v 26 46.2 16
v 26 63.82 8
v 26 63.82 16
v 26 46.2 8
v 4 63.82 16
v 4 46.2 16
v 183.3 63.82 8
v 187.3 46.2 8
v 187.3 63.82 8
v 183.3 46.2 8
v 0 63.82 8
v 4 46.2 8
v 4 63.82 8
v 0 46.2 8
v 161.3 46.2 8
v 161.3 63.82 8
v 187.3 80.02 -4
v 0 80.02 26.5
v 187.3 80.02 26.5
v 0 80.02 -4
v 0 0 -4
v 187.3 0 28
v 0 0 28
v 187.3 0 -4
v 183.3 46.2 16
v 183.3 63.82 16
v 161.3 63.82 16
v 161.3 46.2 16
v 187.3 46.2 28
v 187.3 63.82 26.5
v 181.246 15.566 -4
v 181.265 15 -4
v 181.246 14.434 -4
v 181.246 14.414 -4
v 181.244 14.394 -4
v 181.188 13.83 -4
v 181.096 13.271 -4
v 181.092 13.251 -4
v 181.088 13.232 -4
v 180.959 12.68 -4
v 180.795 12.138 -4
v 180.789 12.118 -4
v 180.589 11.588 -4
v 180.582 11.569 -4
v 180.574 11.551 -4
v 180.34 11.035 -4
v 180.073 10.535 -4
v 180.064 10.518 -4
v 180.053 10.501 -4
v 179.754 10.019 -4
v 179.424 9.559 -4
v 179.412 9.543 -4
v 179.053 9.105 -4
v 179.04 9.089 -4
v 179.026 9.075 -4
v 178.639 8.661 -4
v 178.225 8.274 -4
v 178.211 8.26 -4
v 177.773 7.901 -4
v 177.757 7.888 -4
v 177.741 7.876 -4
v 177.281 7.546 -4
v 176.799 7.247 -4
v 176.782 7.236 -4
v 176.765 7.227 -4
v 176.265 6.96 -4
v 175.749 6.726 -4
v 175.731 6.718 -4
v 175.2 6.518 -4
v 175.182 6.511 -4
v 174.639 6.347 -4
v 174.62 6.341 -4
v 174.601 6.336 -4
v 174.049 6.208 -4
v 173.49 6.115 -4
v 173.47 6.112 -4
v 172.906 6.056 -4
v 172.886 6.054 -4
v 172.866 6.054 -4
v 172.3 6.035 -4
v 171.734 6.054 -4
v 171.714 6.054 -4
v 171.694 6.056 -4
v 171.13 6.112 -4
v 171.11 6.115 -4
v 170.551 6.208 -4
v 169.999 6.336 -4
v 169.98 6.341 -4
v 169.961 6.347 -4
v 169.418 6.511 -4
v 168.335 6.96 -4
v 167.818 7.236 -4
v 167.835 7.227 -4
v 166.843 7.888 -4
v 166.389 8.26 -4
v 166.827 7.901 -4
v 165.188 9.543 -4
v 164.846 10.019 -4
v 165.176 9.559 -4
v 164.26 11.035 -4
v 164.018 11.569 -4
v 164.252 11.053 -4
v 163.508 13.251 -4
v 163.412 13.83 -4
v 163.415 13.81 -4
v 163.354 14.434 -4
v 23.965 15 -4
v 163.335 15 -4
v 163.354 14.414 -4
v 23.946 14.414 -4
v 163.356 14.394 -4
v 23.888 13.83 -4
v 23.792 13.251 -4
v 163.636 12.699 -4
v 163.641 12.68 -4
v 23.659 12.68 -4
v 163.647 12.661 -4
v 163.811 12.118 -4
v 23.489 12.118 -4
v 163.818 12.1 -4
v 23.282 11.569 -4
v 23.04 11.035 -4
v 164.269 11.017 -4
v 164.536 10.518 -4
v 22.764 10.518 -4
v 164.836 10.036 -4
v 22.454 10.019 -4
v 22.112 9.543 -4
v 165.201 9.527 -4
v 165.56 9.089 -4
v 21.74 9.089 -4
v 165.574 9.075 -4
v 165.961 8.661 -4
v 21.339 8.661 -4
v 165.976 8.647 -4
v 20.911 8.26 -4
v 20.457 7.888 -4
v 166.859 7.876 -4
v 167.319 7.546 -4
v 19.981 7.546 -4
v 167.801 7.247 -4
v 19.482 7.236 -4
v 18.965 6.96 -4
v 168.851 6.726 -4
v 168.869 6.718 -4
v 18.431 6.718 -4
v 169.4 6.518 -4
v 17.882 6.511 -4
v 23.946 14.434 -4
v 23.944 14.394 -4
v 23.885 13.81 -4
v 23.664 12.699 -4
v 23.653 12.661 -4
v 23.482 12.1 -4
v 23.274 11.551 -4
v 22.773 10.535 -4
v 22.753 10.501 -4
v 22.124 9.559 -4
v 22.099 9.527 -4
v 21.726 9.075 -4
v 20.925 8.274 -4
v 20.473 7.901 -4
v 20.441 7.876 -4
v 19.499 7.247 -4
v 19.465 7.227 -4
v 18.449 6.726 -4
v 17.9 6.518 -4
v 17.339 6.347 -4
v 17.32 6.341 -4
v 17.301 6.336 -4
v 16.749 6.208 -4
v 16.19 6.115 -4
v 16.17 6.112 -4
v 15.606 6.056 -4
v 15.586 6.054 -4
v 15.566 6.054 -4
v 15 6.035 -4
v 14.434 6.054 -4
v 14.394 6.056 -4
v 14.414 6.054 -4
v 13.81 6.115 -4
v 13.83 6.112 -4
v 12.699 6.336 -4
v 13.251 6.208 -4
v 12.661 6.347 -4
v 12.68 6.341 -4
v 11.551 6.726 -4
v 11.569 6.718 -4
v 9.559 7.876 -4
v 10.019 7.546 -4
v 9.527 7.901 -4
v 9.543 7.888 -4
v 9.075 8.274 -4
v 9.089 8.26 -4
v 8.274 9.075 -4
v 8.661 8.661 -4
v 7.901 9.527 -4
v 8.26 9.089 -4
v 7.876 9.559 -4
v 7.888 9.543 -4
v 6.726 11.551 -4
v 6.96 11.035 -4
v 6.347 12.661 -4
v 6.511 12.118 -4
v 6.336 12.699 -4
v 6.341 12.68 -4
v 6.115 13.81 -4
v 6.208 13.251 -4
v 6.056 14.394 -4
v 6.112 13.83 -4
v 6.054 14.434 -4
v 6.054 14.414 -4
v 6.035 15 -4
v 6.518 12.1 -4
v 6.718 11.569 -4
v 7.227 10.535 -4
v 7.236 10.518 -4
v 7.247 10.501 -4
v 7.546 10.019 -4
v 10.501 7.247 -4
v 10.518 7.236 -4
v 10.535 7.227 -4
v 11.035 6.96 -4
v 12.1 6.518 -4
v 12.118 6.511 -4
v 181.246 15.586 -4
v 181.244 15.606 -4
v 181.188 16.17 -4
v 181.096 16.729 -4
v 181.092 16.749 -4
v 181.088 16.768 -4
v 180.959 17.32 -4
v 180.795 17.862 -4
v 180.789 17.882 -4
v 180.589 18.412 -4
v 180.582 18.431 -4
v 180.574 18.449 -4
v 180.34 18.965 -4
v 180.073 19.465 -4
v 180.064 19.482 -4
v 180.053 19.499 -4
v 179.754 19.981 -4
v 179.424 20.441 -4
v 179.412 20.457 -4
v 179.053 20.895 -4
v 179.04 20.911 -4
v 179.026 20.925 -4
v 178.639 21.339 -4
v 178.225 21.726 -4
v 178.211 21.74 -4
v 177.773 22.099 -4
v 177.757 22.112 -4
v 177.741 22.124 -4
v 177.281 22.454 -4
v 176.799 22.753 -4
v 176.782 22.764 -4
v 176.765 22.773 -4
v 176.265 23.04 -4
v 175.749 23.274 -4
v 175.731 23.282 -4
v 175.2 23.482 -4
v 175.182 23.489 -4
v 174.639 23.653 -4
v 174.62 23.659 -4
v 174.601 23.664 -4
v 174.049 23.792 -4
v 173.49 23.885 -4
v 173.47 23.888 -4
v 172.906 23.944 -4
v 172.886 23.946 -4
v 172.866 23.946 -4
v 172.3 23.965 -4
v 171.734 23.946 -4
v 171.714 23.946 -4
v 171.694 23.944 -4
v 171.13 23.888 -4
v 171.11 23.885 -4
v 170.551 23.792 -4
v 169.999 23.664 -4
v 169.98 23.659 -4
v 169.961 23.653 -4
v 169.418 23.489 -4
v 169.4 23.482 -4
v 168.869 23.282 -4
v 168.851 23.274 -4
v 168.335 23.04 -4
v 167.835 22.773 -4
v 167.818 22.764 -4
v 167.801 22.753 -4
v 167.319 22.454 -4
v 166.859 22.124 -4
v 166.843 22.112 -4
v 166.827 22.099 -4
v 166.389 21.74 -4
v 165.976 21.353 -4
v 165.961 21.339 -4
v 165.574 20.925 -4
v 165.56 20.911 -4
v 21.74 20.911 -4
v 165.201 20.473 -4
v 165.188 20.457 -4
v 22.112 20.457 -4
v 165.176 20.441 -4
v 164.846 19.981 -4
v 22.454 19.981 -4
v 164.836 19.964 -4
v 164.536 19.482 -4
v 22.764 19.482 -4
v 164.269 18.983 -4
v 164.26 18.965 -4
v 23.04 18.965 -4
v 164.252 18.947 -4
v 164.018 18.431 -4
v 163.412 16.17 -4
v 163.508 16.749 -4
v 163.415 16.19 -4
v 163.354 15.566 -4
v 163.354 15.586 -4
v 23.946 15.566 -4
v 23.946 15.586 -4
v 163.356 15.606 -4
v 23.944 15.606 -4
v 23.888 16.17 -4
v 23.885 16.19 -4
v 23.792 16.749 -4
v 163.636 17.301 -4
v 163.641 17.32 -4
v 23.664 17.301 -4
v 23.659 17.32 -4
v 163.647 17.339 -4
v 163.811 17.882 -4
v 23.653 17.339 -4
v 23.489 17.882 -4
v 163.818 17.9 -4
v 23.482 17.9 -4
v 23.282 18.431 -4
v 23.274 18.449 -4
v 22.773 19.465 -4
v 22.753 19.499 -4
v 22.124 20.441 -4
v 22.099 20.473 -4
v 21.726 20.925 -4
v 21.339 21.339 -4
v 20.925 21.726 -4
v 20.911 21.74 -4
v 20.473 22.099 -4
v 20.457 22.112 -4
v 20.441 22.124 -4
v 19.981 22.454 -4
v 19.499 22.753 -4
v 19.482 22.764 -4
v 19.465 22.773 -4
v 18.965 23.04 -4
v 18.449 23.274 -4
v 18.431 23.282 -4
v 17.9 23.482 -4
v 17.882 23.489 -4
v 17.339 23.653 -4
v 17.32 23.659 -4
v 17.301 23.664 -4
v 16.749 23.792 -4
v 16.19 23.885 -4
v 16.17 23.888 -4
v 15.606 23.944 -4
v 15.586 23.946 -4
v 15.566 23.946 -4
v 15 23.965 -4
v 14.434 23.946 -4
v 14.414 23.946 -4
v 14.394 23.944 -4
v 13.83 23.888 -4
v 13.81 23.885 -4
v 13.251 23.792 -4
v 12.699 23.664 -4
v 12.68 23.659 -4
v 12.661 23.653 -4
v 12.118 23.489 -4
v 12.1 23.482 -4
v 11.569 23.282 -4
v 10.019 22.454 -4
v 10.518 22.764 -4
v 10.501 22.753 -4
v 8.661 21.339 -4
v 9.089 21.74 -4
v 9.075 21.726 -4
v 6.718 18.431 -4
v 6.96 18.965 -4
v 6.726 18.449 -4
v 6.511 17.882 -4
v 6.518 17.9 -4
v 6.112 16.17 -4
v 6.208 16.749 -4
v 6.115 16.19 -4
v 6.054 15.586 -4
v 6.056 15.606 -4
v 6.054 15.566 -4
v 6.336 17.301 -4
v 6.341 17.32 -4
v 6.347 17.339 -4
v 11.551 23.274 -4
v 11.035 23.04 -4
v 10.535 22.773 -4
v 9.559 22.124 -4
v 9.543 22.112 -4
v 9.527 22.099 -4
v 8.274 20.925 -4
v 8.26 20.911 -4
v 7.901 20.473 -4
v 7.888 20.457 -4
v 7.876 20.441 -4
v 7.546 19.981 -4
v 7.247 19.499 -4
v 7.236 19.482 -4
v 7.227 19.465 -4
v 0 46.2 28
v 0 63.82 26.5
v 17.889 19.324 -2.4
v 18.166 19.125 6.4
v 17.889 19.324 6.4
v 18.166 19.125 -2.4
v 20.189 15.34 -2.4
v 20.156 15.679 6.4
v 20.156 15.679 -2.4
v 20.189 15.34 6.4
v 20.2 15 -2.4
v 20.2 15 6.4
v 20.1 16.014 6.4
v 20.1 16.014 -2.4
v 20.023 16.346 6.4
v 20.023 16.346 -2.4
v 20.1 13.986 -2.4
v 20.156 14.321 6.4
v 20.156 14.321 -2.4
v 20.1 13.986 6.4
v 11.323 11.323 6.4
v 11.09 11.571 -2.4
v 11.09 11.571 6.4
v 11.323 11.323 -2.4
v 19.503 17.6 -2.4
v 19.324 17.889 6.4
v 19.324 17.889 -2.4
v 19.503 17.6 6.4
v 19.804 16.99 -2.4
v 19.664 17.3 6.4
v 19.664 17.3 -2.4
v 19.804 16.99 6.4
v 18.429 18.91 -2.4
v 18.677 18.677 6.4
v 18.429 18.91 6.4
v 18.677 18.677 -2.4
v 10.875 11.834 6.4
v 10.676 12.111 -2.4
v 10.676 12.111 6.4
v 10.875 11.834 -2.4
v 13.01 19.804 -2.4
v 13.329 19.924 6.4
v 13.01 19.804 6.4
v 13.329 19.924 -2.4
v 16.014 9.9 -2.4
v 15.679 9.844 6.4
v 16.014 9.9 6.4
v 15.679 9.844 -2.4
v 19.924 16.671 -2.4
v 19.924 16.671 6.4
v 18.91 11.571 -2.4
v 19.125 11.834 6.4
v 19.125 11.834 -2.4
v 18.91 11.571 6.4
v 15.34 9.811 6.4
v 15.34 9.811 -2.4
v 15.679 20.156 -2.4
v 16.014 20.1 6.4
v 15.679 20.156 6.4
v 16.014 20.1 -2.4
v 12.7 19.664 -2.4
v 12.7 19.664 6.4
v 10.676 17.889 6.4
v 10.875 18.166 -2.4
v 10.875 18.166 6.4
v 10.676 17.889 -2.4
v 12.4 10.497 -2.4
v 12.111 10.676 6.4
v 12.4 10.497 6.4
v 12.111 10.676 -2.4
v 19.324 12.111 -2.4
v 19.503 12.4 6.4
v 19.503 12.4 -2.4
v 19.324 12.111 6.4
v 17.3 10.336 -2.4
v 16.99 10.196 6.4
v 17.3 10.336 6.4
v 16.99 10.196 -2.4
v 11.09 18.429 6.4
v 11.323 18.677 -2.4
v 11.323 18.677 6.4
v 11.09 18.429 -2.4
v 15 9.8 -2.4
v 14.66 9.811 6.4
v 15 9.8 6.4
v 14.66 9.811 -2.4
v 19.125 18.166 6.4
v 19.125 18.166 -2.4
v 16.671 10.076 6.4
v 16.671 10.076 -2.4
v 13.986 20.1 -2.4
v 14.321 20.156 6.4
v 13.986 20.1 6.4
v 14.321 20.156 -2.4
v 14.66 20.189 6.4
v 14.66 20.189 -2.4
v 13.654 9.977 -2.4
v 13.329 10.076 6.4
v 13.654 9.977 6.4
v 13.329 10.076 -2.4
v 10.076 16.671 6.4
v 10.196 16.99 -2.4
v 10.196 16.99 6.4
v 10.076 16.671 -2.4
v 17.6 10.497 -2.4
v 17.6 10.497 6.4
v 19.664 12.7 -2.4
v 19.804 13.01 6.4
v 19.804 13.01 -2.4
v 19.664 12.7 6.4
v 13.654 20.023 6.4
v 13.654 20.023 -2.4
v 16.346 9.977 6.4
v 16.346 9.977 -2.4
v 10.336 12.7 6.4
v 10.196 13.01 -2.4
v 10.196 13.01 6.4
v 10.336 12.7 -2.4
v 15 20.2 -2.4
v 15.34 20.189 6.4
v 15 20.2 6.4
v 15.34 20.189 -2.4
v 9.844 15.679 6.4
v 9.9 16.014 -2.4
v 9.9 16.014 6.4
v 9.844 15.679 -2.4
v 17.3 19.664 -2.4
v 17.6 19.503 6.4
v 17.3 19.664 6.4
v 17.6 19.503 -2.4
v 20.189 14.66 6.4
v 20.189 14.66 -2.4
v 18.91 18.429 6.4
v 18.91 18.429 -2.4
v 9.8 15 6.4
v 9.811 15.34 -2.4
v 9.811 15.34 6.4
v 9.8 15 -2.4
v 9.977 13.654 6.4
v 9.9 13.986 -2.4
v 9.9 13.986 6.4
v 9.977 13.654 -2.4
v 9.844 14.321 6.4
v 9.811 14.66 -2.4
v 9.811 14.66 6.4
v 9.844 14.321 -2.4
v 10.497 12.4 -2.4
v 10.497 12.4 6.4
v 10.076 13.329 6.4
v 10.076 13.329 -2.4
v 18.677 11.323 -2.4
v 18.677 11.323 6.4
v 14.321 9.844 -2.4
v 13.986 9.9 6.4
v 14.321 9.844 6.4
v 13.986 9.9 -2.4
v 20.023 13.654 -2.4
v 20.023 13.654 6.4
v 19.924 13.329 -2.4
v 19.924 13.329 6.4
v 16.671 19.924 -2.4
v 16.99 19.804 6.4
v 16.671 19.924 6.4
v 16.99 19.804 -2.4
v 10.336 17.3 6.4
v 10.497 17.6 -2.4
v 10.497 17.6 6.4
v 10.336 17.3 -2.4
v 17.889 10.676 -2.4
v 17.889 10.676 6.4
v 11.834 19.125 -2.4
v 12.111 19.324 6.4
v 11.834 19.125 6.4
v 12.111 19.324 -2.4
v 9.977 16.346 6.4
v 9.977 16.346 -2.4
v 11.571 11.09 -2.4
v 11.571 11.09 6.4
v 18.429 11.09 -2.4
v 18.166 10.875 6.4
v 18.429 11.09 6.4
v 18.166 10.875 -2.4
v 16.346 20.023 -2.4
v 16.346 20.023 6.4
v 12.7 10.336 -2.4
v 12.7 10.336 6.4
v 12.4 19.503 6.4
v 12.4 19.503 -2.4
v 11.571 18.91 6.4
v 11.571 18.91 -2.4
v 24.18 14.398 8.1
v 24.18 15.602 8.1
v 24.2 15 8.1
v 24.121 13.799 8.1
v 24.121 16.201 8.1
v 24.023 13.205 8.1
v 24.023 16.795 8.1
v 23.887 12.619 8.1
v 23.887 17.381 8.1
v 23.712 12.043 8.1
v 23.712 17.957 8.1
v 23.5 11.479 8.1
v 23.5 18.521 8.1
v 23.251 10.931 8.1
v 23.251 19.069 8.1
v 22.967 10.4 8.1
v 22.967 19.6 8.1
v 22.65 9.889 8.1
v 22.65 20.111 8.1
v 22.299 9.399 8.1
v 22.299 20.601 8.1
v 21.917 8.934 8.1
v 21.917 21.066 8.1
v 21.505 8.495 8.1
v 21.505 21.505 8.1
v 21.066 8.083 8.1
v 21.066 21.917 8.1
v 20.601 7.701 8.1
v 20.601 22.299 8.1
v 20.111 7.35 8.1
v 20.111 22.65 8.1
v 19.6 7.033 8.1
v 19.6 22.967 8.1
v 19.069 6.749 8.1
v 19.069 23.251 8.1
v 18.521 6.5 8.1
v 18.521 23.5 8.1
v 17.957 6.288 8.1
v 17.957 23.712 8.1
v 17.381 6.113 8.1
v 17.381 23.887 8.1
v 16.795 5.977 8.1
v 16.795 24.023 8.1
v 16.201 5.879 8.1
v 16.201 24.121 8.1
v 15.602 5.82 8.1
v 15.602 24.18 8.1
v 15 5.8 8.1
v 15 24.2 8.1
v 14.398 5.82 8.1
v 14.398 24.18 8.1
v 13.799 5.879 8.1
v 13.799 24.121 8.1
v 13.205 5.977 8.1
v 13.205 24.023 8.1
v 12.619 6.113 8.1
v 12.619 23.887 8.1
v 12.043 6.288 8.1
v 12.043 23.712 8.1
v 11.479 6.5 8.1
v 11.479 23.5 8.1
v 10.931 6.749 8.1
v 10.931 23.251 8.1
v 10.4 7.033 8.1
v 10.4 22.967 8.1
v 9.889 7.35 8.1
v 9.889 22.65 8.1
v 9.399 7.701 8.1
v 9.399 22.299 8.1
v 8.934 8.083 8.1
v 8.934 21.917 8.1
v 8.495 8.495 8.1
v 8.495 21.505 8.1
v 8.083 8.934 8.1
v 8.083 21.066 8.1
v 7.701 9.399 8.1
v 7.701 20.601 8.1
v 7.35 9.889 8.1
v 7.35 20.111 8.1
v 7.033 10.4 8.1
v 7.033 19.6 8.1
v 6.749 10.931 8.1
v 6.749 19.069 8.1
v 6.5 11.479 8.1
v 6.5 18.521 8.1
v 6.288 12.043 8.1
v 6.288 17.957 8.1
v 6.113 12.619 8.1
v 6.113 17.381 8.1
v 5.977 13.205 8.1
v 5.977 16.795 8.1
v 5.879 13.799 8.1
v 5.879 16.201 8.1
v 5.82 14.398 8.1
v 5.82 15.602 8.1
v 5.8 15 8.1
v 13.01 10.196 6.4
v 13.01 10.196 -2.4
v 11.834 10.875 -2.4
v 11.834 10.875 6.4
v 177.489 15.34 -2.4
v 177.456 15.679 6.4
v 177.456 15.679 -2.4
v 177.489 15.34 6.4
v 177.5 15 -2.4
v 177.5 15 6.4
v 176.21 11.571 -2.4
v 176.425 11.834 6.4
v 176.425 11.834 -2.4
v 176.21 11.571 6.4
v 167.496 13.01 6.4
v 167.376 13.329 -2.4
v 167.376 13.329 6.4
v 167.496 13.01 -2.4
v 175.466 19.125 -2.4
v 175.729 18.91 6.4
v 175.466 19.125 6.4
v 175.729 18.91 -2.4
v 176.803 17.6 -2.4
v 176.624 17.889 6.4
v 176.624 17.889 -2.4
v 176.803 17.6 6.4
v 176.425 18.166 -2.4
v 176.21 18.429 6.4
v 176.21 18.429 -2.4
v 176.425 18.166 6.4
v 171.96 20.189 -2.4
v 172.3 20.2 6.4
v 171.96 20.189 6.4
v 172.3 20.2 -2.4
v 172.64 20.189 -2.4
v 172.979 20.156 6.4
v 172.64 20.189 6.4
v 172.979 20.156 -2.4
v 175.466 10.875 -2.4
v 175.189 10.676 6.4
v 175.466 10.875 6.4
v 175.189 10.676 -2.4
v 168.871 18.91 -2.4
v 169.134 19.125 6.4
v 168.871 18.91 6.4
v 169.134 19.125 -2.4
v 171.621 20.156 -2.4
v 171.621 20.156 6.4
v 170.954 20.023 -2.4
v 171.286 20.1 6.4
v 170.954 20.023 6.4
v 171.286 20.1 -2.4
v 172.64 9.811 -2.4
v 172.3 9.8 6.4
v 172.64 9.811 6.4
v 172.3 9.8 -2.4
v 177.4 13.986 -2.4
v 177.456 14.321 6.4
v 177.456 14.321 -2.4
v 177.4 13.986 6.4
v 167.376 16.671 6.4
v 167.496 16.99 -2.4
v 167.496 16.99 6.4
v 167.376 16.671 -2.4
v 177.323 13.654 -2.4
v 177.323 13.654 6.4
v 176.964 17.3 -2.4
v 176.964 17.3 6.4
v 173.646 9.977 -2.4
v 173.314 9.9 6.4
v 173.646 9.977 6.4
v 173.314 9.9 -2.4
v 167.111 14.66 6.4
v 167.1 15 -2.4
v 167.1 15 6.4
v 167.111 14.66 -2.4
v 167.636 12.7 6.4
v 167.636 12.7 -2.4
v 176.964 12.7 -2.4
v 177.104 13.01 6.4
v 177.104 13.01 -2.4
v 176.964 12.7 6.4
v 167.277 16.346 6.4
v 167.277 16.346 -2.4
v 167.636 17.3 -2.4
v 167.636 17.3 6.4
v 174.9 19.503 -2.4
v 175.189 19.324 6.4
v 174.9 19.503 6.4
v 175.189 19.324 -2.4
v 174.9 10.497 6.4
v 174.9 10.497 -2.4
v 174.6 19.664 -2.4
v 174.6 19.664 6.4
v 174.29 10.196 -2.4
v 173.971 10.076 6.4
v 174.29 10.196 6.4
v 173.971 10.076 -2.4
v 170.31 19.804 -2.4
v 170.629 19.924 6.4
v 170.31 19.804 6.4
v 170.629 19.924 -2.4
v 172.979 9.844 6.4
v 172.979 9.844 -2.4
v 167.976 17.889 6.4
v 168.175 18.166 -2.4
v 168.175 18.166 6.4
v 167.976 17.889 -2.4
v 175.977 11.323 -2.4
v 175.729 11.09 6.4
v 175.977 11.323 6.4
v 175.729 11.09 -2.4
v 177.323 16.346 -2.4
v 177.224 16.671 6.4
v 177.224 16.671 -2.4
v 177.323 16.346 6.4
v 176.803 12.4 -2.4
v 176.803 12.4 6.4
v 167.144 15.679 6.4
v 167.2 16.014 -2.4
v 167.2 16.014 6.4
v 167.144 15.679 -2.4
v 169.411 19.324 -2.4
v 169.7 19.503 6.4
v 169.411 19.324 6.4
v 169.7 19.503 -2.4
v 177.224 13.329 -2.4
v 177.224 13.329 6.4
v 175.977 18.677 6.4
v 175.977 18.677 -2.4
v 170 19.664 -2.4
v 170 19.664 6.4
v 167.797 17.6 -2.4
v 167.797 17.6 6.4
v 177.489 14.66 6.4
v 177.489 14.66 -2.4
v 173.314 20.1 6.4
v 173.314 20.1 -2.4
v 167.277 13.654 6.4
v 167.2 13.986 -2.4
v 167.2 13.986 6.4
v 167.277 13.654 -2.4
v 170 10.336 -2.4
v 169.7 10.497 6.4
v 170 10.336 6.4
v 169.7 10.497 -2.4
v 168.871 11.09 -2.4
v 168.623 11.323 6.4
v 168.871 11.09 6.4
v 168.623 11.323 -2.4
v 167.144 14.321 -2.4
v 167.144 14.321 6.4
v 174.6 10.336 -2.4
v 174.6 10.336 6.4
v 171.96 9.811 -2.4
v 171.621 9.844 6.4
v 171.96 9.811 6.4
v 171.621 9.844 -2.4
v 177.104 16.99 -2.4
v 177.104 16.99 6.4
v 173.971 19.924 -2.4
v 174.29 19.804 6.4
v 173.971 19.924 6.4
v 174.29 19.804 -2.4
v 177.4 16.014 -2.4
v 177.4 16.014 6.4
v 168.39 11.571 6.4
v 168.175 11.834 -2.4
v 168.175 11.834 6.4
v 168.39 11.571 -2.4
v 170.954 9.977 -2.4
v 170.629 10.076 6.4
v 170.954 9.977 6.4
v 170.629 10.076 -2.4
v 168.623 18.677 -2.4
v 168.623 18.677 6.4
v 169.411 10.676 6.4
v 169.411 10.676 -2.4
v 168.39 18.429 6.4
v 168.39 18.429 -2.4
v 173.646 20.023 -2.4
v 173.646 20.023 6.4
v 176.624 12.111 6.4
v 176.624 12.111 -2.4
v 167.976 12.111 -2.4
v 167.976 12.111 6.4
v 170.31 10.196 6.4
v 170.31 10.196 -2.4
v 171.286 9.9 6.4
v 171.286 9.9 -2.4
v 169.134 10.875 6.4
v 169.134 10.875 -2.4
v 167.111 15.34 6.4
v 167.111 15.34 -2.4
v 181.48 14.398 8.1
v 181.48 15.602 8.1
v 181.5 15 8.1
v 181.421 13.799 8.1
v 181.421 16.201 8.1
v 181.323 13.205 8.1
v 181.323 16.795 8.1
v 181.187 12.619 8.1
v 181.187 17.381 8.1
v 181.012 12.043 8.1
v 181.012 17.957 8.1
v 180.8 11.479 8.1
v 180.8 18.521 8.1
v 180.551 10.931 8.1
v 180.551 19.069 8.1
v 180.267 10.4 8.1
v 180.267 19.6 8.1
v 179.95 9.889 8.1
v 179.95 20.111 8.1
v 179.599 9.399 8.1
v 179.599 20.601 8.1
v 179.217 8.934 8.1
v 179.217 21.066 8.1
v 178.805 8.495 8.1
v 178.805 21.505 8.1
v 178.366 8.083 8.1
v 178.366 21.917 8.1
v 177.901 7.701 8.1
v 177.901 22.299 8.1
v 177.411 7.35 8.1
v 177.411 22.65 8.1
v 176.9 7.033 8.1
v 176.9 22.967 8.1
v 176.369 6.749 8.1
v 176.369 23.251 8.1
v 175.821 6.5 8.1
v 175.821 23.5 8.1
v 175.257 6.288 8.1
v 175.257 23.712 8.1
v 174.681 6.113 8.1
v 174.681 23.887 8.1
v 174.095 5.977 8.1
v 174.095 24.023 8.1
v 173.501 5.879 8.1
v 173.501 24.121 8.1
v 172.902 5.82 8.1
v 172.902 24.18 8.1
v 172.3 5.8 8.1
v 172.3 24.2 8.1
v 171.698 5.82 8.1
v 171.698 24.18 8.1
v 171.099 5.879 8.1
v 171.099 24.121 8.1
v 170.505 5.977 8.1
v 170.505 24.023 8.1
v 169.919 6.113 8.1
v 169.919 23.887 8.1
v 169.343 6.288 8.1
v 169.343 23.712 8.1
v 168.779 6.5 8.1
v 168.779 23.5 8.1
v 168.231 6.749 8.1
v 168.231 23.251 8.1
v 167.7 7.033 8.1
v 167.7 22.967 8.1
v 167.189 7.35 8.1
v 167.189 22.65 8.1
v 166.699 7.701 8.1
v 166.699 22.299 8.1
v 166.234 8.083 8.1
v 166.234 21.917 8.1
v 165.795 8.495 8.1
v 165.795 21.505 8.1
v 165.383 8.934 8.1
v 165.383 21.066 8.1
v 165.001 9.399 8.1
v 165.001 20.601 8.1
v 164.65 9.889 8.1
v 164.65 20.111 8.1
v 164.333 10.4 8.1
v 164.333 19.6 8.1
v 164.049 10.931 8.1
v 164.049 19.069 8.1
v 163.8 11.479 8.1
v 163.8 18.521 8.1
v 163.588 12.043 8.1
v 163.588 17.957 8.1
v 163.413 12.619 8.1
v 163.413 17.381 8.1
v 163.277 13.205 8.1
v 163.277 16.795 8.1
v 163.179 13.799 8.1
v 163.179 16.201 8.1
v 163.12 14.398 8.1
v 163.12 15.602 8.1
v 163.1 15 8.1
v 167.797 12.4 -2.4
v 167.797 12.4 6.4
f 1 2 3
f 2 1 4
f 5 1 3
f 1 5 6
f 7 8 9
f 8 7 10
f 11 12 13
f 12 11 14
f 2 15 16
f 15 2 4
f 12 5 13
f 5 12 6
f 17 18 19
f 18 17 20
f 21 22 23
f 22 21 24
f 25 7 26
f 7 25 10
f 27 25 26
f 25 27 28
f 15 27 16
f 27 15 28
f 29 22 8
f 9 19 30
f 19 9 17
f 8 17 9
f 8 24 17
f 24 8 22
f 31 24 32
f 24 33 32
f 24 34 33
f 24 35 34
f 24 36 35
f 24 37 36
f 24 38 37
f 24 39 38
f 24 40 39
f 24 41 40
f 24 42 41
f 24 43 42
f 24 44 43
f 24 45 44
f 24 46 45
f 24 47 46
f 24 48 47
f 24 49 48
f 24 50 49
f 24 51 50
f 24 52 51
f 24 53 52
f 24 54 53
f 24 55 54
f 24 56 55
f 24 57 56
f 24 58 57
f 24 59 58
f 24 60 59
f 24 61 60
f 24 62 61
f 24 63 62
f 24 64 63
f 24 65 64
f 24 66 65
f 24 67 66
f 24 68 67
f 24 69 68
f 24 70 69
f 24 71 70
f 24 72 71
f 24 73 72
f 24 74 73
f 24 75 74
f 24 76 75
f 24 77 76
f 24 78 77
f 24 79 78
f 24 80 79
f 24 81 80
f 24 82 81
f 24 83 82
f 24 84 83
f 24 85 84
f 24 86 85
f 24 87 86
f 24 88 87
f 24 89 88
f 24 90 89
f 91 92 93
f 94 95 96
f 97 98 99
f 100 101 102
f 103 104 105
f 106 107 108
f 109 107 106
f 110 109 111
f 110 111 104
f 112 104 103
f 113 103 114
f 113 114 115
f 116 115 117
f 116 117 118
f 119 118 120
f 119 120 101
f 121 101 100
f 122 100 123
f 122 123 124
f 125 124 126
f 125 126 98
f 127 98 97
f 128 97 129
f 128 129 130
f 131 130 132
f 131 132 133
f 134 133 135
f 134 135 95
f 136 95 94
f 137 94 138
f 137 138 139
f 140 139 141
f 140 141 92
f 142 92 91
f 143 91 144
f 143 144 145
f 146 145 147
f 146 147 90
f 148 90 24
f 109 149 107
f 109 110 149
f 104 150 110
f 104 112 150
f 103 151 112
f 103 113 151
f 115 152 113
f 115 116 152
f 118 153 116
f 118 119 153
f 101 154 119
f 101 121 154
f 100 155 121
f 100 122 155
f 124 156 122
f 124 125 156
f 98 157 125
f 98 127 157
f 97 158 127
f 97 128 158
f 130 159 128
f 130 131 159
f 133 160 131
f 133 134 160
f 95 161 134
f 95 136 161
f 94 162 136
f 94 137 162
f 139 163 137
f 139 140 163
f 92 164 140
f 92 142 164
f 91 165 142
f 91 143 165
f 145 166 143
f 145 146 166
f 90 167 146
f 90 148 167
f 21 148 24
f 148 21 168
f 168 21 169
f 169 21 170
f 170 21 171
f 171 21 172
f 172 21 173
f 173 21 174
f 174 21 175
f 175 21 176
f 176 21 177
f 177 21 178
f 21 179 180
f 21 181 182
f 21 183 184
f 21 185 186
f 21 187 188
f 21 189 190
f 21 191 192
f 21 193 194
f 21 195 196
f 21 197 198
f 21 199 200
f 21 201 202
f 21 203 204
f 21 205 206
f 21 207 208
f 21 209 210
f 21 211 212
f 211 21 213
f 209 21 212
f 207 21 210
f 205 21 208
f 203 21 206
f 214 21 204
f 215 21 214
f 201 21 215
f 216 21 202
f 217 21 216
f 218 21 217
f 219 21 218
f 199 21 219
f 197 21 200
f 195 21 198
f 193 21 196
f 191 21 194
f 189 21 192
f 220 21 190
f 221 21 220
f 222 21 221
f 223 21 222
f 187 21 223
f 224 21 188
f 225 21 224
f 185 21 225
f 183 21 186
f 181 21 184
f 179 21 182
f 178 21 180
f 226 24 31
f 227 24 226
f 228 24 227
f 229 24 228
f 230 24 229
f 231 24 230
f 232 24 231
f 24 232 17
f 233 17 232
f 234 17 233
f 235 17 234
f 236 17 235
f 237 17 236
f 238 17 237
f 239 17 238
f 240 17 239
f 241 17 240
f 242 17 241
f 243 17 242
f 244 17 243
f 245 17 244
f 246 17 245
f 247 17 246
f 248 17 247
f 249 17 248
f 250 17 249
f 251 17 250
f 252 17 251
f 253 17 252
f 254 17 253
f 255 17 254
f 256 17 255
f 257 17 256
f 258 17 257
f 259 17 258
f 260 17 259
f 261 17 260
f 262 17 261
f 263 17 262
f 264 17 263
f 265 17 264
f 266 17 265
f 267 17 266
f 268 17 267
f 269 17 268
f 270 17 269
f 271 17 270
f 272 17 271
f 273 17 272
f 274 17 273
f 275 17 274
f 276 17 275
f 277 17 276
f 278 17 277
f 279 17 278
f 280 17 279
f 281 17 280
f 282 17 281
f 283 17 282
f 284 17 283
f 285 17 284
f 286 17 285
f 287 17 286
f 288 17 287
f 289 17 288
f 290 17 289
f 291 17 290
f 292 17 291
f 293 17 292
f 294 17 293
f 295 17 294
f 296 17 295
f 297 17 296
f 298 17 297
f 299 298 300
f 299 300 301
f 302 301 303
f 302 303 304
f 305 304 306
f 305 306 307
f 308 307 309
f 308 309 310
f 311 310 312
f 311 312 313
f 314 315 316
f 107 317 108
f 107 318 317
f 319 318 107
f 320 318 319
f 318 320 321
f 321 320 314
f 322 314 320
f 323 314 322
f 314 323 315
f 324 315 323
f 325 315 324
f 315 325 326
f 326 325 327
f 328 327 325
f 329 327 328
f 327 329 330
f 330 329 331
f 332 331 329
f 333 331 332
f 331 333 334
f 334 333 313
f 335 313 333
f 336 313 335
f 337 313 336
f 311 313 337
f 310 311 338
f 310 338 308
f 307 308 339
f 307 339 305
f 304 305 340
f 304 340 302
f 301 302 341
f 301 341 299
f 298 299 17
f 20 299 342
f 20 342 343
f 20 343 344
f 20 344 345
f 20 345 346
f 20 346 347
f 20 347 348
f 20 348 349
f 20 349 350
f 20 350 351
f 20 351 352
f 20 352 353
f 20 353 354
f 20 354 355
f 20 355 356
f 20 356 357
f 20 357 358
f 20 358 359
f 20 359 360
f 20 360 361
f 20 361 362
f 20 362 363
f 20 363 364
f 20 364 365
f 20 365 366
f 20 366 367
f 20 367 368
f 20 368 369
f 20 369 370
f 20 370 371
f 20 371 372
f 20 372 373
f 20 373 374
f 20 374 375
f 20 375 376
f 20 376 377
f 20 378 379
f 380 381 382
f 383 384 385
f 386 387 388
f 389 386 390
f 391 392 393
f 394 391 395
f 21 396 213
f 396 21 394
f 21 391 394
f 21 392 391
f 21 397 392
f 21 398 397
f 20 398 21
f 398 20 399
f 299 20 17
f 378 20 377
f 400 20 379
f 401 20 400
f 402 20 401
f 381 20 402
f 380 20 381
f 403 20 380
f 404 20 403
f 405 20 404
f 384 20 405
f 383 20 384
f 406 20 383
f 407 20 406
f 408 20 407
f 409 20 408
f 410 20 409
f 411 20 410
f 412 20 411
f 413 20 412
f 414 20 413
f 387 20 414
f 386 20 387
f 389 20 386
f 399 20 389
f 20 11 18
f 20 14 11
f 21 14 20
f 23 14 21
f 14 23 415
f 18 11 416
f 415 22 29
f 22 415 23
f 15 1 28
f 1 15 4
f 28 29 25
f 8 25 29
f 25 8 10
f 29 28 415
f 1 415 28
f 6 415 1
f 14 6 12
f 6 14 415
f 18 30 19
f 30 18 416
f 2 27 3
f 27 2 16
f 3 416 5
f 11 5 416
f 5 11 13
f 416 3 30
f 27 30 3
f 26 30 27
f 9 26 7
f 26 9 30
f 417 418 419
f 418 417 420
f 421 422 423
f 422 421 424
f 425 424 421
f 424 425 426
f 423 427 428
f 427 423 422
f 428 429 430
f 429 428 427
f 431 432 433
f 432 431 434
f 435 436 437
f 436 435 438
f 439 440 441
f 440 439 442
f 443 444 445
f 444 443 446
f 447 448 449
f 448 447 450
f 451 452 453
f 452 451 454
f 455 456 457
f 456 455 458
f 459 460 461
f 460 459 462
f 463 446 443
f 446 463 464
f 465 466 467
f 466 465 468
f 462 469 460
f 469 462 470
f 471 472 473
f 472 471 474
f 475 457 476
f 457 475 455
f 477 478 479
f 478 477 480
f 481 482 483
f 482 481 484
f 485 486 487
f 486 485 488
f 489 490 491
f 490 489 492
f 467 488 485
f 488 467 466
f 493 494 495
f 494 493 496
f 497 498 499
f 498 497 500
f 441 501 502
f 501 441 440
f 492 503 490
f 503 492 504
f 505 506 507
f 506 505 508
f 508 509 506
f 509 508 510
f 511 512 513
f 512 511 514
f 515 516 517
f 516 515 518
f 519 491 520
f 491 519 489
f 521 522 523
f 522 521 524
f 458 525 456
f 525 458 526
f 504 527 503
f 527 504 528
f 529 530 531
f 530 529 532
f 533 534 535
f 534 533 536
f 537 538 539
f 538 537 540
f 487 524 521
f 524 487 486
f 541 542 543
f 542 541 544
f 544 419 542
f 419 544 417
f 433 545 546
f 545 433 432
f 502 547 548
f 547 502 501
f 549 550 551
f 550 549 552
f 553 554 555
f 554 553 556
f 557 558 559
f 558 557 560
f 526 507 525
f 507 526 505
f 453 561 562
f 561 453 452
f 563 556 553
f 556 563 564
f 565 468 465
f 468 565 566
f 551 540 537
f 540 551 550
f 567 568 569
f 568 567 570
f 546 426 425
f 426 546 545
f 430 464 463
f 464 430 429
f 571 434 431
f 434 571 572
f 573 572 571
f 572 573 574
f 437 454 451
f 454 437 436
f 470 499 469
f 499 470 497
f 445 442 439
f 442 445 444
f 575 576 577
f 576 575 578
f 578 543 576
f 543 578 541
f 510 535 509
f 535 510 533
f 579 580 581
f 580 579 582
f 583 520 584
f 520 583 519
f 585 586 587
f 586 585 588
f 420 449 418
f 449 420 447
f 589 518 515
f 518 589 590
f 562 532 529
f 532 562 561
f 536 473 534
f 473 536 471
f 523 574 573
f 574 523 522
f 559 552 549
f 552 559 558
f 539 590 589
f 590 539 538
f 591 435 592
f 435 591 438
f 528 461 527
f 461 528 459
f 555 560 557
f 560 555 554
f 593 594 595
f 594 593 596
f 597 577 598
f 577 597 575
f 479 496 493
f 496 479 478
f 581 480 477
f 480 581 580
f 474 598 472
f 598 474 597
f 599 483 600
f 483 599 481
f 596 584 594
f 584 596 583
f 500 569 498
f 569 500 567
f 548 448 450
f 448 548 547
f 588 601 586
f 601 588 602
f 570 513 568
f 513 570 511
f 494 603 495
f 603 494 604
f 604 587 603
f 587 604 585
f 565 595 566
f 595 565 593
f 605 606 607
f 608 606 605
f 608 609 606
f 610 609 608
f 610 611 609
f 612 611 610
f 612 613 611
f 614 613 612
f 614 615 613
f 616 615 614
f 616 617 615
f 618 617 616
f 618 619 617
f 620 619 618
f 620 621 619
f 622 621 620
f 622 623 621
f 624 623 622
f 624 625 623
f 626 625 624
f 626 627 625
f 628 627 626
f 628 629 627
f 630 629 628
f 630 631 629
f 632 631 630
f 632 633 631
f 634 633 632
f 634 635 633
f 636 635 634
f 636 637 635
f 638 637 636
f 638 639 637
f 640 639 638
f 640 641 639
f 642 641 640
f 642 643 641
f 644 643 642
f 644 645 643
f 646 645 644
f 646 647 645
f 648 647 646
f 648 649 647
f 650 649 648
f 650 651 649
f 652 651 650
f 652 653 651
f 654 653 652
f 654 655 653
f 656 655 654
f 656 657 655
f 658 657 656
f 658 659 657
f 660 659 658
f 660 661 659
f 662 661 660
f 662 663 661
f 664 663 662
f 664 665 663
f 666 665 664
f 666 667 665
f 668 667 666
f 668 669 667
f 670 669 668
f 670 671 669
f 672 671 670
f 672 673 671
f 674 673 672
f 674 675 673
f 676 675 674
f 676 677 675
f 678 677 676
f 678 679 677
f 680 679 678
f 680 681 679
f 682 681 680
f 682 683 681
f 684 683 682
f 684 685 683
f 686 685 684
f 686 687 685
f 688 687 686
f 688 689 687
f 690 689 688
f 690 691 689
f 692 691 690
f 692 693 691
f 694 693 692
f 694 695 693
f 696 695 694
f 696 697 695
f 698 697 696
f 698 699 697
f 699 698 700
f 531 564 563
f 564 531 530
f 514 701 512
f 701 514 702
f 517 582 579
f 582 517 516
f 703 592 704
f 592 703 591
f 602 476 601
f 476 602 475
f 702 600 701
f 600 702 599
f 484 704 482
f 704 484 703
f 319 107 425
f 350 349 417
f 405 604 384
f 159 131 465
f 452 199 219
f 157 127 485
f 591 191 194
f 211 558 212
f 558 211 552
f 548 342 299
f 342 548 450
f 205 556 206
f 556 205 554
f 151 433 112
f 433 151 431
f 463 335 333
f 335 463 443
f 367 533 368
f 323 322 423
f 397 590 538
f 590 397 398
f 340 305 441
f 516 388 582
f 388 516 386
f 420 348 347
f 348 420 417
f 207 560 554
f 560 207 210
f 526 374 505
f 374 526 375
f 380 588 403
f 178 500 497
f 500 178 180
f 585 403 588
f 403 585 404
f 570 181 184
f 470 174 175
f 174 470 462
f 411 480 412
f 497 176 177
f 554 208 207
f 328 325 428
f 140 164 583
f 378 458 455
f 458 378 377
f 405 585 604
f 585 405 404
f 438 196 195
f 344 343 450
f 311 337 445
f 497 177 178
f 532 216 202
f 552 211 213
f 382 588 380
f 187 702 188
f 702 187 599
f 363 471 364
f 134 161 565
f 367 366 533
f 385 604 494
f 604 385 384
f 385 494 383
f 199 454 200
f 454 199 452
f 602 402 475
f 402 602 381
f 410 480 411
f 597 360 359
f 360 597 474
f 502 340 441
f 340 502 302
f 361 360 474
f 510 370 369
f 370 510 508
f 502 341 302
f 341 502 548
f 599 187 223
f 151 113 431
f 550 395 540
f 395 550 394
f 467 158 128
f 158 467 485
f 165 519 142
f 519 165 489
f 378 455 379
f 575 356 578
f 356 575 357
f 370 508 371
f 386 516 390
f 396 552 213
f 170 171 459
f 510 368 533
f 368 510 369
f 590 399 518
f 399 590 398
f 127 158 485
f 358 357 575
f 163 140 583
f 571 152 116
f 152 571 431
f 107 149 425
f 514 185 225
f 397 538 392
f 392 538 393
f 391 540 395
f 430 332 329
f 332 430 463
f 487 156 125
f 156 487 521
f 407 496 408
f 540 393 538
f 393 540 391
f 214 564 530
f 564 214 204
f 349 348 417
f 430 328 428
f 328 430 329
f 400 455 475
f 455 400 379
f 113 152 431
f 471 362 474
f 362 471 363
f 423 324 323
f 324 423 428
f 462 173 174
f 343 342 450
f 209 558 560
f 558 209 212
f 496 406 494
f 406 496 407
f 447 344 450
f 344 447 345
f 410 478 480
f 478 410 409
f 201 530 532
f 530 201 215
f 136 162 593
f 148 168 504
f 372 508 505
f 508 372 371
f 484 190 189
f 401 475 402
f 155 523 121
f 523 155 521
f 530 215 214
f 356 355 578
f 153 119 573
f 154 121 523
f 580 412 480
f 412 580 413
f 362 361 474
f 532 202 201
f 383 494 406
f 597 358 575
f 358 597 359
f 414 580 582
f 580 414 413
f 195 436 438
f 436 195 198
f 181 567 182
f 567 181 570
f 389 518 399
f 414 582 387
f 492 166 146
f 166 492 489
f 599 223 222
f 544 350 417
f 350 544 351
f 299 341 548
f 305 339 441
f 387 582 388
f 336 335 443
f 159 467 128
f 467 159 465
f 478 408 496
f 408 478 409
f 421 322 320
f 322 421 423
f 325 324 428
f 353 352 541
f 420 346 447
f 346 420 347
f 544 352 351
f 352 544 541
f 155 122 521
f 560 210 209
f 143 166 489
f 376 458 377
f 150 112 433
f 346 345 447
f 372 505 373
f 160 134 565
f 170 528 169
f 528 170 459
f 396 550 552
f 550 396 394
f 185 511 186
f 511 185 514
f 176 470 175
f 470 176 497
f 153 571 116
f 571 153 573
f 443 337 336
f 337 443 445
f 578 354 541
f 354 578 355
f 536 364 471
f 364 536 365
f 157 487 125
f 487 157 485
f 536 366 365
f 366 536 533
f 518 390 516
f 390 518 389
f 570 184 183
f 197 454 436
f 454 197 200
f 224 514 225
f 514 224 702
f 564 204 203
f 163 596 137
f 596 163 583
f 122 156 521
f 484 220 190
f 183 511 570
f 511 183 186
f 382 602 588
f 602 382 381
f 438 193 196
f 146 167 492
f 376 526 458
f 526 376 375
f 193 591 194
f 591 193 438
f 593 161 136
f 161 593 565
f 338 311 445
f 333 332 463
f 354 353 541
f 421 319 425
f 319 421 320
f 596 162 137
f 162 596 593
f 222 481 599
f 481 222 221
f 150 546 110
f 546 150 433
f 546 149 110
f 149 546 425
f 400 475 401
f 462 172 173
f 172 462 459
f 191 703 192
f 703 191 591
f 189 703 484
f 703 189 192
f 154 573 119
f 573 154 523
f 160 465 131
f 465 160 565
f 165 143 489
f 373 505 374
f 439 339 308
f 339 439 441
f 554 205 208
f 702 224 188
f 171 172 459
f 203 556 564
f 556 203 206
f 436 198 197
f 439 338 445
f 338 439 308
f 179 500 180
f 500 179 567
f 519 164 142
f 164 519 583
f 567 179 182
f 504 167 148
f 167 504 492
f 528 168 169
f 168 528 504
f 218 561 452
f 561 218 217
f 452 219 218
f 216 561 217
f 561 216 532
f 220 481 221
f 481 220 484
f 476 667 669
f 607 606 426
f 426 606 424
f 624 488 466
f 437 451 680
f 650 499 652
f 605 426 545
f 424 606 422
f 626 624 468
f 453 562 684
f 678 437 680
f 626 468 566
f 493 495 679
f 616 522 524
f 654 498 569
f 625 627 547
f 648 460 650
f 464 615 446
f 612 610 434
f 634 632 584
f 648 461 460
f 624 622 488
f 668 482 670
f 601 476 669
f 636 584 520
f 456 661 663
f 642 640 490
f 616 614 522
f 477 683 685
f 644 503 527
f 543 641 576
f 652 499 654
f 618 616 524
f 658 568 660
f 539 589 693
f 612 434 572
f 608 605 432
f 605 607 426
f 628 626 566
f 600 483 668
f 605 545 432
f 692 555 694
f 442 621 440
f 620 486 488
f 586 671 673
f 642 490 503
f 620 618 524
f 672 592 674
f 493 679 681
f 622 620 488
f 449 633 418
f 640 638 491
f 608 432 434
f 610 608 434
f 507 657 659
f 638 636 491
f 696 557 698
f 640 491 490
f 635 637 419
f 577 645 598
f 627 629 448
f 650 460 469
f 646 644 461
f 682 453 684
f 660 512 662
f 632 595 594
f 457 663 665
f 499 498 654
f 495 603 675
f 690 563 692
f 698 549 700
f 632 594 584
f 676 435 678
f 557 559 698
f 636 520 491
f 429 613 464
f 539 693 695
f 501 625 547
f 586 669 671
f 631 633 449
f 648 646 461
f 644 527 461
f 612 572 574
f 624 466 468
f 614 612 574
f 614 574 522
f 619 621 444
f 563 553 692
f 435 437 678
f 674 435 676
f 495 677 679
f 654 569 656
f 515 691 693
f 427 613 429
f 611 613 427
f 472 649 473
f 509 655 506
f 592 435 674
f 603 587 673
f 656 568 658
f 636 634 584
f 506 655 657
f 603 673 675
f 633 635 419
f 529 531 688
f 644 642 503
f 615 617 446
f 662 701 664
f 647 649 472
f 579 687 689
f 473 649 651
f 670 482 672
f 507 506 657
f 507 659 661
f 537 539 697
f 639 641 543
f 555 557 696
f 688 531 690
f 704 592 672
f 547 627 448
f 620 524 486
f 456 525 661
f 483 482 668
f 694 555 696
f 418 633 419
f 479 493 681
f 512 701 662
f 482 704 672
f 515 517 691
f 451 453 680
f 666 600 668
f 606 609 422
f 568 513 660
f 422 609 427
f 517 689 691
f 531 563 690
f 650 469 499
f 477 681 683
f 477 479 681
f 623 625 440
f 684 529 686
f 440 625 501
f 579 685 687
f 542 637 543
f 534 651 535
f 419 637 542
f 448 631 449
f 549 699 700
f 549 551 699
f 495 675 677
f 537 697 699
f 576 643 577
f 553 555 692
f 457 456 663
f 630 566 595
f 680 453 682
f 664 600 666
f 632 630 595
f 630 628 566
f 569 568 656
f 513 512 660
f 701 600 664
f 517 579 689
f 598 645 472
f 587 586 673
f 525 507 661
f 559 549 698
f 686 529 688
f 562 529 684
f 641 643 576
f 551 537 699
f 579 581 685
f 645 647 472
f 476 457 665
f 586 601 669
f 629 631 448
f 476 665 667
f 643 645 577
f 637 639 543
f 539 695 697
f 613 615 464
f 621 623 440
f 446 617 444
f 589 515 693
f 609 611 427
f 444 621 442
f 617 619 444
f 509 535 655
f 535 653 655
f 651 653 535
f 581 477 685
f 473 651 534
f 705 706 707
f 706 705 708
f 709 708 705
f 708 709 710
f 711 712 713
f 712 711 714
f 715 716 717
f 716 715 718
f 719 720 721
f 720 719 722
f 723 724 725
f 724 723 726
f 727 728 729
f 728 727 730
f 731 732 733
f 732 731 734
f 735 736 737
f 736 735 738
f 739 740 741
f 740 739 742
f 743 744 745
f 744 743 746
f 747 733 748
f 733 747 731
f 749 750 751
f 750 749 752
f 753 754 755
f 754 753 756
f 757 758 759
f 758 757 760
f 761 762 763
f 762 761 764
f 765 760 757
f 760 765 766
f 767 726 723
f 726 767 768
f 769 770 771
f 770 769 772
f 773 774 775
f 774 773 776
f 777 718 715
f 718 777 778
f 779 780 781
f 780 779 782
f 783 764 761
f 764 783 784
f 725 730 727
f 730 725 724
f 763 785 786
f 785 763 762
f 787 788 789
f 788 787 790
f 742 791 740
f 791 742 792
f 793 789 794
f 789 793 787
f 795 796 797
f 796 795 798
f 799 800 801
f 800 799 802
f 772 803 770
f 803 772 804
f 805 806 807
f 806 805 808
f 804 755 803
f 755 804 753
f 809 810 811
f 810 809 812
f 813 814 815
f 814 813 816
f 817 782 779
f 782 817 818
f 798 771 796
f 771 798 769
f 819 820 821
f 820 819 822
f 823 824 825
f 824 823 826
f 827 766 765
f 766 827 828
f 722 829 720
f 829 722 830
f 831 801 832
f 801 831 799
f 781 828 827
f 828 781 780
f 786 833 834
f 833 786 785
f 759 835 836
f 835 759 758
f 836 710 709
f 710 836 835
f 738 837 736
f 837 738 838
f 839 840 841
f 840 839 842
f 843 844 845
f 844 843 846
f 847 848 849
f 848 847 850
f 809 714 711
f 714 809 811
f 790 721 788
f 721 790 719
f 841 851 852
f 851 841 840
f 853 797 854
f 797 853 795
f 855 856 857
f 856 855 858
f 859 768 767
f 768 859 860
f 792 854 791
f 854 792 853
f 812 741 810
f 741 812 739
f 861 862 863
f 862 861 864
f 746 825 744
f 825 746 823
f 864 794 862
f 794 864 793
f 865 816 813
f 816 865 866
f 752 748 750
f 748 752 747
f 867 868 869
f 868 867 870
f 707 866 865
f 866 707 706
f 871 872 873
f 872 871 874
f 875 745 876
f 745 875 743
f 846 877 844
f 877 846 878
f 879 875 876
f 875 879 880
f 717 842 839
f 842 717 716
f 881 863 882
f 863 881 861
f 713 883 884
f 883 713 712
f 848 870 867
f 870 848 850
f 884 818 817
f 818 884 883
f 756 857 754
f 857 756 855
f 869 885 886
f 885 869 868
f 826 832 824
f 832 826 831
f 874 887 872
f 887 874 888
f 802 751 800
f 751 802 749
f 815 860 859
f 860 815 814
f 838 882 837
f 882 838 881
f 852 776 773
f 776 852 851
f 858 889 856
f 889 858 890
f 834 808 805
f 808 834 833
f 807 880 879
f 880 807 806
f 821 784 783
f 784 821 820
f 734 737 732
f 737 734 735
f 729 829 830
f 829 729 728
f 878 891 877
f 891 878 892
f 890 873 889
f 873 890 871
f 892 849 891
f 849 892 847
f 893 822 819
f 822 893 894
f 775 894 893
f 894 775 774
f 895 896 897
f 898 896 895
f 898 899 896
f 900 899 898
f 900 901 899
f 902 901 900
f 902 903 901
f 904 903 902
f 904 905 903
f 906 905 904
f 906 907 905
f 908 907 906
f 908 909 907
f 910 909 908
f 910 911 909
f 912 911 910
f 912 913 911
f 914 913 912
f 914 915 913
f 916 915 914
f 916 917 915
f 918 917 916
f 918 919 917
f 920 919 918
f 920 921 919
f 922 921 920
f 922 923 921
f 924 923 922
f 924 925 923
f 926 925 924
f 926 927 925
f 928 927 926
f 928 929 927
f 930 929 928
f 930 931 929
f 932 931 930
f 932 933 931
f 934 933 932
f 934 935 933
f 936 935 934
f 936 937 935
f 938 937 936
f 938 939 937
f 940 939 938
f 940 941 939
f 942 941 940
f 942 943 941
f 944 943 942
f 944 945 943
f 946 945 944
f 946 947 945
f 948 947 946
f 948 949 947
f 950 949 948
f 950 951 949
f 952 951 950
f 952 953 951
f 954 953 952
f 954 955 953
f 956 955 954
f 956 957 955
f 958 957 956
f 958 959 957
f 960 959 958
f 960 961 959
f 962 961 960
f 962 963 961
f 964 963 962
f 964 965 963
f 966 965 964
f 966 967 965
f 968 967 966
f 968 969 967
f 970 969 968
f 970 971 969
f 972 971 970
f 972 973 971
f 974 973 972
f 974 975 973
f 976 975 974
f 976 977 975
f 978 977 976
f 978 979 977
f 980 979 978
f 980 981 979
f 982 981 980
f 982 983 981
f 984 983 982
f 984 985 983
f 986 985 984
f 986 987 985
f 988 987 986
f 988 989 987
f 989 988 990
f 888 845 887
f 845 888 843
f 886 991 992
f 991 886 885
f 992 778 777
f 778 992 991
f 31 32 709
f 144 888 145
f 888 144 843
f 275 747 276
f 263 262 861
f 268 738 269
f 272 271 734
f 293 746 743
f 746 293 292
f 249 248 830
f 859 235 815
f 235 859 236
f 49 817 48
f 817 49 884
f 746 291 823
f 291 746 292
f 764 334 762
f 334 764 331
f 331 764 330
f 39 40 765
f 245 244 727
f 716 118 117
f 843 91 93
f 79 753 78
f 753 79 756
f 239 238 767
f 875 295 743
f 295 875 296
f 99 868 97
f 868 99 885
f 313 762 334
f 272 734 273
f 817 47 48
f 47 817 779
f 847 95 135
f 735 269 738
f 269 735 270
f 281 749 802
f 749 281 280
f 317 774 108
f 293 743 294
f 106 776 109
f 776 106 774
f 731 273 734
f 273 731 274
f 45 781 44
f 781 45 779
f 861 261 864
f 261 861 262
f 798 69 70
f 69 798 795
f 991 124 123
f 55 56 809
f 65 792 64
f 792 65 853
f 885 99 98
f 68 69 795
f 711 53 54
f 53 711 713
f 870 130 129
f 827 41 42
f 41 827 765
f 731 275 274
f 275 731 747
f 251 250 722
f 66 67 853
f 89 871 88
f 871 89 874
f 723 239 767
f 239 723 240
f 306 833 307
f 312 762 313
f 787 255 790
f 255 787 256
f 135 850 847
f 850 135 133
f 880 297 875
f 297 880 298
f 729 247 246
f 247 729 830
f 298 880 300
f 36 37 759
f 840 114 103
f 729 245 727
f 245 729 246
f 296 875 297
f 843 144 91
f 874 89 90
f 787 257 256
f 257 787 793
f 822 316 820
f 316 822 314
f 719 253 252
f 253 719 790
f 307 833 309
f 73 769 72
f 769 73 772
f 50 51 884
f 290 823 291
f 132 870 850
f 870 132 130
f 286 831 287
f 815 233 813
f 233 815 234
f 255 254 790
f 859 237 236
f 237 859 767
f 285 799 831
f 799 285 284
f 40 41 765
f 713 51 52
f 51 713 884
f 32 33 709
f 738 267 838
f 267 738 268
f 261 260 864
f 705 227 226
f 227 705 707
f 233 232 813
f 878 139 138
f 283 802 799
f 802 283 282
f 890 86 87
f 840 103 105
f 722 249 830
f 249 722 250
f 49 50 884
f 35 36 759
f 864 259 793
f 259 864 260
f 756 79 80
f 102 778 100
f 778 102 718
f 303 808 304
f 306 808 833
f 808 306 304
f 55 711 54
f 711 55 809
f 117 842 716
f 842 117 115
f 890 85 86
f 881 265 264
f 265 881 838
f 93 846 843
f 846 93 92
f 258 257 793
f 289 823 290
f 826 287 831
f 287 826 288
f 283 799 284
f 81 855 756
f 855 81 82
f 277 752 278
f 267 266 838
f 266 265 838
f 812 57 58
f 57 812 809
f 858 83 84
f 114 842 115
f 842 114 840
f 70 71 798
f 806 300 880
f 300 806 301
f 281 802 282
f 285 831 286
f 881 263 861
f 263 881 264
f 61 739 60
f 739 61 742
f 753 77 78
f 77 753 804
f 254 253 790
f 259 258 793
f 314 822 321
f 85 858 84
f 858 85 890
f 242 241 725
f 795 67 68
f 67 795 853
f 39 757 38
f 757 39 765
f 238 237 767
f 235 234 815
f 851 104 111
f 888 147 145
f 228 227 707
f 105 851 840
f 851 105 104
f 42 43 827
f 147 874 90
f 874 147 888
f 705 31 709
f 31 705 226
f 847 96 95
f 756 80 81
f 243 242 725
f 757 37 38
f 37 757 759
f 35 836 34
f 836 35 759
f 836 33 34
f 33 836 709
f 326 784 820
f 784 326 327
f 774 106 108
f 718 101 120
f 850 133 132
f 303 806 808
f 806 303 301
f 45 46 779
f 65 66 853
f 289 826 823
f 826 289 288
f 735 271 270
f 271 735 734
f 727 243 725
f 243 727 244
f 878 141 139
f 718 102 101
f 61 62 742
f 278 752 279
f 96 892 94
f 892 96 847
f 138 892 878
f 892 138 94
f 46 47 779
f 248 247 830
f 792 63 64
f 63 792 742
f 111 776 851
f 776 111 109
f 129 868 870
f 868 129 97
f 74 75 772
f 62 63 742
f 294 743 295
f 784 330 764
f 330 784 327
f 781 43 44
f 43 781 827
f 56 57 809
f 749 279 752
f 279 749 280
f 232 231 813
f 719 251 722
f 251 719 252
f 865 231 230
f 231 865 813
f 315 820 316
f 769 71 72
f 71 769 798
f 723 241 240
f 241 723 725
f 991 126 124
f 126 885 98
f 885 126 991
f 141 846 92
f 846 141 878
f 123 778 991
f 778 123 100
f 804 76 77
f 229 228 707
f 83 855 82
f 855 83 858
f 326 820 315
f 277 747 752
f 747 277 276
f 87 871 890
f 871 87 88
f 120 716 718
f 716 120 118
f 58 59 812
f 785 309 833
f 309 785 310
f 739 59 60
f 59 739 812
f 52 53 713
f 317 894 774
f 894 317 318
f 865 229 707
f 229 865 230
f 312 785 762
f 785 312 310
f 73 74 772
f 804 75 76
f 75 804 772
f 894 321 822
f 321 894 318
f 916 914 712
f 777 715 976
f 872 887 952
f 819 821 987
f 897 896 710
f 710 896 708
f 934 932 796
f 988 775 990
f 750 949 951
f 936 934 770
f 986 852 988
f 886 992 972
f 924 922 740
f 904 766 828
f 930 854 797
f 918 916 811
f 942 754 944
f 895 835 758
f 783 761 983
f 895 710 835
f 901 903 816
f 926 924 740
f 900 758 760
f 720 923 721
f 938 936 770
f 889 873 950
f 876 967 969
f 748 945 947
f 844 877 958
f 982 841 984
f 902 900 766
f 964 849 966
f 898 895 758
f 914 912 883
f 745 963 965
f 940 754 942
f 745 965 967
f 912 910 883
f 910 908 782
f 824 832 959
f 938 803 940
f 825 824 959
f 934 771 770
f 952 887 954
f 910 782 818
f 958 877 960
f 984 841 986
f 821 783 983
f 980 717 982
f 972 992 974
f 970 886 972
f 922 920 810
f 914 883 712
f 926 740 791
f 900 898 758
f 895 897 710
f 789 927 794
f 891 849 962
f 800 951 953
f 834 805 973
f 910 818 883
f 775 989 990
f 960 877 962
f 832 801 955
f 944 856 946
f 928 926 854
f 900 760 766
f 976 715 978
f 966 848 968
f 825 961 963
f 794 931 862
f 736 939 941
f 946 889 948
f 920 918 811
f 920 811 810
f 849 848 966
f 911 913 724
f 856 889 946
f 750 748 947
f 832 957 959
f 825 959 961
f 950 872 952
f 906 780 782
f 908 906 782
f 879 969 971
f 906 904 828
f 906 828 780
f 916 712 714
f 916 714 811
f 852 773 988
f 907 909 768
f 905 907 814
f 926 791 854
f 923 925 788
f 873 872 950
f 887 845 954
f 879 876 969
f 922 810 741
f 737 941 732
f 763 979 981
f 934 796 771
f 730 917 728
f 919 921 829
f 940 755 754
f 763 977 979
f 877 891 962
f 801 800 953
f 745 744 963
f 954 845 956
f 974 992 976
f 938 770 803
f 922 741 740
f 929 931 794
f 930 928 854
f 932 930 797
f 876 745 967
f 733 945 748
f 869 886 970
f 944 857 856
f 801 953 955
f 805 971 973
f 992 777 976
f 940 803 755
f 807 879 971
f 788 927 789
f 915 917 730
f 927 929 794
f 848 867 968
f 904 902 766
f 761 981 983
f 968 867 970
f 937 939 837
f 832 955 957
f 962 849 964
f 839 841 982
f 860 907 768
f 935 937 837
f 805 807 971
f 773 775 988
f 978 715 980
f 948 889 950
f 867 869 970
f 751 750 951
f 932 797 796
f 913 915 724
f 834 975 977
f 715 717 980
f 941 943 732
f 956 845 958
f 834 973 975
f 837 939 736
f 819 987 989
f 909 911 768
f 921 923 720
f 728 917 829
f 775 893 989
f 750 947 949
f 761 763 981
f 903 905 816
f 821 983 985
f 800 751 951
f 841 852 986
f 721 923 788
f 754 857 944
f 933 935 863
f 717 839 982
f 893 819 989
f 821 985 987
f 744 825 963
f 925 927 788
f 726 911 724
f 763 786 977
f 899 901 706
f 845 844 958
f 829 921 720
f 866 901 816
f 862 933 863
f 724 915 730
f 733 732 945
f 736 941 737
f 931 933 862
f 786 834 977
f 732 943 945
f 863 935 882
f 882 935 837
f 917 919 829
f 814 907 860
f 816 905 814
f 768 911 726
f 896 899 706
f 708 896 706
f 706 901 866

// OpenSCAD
$fn=96;
w=187.30; h=80.02;
bearing_back=-4.00;
backbone_front=8.00;
bearing_t=backbone_front-bearing_back;
bearing_d=10.40;
seat_outer_d=18.40;
seat_depth=1.60;
pocket_lo=46.20; pocket_hi=63.82;
lower_z2=27.00; upper_z2=26.50;
x_positions=[15.00,172.30];

module stepped_body() {
    union() {
        translate([0,0,bearing_back]) cube([w,h,bearing_t]);
        translate([0,0,backbone_front]) cube([w,pocket_lo,20]);
        translate([0,pocket_hi,backbone_front]) cube([w,h-pocket_hi,18.5]);
        for (x=x_positions)
            translate([x-11,0,backbone_front]) cube([22,h,8]);
    }
}
module spindle_cut(x) {
    translate([x,15,bearing_back-0.1])
        cylinder(h=bearing_t+0.2,d=bearing_d);
    translate([x,15,bearing_back-0.1])
        cylinder(h=seat_depth+0.1,d1=seat_outer_d,d2=bearing_d);
    translate([x,15,backbone_front-seat_depth])
        cylinder(h=seat_depth+0.1,d1=bearing_d,d2=seat_outer_d);
}
difference() {
    stepped_body();
    for (x=x_positions) spindle_cut(x);
}
